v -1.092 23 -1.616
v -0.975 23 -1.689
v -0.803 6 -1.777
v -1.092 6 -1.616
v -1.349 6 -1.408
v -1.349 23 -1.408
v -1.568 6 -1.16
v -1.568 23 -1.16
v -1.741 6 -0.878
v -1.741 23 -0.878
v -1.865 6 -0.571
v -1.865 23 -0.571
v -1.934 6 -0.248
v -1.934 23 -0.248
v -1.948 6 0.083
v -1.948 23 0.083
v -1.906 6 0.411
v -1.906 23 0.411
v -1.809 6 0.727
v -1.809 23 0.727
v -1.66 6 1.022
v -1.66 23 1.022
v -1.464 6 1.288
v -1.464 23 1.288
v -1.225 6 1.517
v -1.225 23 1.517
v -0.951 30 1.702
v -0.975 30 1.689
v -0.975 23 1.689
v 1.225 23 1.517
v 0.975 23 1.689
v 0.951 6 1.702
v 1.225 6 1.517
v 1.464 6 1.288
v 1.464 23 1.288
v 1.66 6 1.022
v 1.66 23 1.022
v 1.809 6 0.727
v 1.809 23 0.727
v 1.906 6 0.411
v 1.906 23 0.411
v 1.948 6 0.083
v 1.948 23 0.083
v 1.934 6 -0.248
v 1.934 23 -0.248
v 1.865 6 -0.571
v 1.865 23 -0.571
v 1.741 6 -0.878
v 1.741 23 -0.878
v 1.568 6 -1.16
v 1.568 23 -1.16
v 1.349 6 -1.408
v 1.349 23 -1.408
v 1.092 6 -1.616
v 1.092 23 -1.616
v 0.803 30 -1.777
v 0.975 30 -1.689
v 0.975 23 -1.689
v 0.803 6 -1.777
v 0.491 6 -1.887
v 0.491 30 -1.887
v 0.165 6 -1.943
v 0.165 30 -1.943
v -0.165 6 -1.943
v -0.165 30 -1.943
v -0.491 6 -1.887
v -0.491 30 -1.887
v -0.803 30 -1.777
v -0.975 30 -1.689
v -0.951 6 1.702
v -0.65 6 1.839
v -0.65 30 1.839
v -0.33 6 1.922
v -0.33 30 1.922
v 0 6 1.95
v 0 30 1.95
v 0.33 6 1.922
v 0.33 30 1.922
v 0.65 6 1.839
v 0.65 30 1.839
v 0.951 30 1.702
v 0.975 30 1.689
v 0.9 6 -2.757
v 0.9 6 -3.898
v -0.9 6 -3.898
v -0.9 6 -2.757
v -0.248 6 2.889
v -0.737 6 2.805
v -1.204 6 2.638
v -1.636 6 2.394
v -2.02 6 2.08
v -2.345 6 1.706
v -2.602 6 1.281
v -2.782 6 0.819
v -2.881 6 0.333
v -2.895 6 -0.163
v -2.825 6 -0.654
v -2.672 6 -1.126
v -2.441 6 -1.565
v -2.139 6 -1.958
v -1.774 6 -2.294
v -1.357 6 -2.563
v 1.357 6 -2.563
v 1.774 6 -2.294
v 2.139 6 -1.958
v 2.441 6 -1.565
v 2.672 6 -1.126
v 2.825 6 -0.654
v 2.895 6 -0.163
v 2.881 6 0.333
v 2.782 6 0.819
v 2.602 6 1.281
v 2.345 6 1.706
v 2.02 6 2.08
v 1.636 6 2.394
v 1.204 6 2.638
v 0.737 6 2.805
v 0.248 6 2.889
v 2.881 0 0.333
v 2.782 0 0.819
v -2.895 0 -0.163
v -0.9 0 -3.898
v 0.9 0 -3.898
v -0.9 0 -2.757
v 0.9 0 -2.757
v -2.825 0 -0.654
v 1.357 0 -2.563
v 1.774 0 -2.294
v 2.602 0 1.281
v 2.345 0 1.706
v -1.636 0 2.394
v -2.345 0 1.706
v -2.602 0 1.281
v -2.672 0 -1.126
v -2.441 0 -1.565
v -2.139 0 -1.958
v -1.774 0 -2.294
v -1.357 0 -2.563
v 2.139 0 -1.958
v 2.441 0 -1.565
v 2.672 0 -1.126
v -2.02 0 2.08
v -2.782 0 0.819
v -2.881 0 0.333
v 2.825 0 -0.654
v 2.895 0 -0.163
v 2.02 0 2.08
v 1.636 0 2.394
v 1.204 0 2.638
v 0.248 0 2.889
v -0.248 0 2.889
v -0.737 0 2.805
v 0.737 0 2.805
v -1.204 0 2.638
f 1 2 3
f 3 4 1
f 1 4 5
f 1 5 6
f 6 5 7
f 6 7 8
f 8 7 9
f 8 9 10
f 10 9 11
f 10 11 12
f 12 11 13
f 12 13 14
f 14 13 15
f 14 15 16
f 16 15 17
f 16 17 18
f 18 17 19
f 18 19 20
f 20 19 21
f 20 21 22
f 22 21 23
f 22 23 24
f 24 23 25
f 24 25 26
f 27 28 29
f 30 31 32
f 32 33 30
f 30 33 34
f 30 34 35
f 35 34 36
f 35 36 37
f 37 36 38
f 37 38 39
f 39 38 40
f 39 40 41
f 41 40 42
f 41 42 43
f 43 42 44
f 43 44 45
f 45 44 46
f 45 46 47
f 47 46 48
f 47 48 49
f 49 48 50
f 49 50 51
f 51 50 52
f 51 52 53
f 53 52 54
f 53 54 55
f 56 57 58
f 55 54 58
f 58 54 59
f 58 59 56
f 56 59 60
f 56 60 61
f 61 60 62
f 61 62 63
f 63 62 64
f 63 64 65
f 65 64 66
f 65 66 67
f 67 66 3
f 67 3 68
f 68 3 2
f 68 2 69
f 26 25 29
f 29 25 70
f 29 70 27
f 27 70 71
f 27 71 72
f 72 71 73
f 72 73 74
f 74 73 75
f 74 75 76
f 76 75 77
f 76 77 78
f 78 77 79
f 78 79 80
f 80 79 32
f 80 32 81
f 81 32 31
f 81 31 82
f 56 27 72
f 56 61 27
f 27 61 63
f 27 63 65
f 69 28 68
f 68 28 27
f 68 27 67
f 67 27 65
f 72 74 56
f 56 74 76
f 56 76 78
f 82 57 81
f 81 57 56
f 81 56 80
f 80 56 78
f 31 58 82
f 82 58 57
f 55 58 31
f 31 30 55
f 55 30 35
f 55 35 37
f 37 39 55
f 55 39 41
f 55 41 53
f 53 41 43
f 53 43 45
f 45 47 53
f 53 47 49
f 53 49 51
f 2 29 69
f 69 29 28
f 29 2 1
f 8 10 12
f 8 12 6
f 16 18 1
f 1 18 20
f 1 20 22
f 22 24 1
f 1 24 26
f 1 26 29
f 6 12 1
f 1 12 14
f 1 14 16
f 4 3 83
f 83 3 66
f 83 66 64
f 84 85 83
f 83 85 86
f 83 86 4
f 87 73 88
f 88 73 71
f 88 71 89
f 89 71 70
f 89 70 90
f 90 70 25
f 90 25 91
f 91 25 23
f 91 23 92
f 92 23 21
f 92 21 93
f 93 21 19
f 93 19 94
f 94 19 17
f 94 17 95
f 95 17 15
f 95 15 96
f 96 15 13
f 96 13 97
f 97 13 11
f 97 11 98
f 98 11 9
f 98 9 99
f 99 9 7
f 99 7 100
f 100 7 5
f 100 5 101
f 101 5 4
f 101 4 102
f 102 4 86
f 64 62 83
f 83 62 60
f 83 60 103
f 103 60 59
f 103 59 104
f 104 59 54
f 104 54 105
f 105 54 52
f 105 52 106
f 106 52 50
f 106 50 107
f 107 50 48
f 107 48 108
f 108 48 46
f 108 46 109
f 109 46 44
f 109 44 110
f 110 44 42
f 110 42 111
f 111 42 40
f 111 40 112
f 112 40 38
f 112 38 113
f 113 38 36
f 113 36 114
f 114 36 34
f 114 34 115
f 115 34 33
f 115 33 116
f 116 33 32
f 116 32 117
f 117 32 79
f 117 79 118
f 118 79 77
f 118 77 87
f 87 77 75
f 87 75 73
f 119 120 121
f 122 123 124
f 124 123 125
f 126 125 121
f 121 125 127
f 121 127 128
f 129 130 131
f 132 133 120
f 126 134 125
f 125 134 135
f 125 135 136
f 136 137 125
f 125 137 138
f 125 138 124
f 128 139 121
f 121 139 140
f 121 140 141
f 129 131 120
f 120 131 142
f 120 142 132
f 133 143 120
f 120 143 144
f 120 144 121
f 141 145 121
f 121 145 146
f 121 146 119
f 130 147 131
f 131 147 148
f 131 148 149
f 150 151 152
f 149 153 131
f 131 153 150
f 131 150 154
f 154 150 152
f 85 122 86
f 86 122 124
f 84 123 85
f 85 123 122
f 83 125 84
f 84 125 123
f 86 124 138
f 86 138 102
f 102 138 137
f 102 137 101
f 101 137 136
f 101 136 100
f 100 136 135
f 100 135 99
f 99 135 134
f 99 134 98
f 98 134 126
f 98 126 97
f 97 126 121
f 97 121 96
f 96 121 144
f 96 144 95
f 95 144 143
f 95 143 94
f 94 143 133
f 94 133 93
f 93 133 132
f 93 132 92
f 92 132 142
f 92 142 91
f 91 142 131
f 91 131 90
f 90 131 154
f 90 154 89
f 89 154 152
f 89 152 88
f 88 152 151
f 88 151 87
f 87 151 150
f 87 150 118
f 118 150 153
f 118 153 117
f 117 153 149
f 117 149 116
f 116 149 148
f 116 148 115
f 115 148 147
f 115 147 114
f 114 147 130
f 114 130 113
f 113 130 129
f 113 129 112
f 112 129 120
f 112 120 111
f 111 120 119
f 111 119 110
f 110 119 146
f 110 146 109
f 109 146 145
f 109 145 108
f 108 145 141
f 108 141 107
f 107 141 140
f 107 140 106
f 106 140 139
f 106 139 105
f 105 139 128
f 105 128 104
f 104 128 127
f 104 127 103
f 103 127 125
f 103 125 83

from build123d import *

# Parameters (mm, degrees)
SKETCH1_R           = 3
SKETCH1_W           = 2
SKETCH1_H           = 1.17
BOSS_EXTRUDE1_DEPTH = 30
SKETCH2_R           = 6.166150273
SKETCH2_R_2         = 1.95
CUT_EXTRUDE1_DEPTH  = 22
CUT_EXTRUDE2_DEPTH  = 7
CUT_EXTRUDE3_DEPTH  = 100
SKETCH5_R           = 1.95
CUT_EXTRUDE4_DEPTH  = 2


with BuildPart() as part:
    # Sketch1 → Boss-Extrude1 (new body)
    with BuildSketch(Plane(origin=(0, 0, 0), x_dir=(1, 0, 0), z_dir=(0, 1, 0))):
        Circle(SKETCH1_R)
        with Locations((0, 3.413427125)):
            Rectangle(SKETCH1_W, SKETCH1_H)
    extrude(amount=BOSS_EXTRUDE1_DEPTH)

    # Sketch2 → Cut-Extrude1 (cut)
    with BuildSketch(Plane(origin=(0, 30, 0), x_dir=(1, 0, 0), z_dir=(0, 1, 0))):
        Circle(SKETCH2_R)
        Circle(SKETCH2_R_2, mode=Mode.SUBTRACT)
    extrude(amount=-CUT_EXTRUDE1_DEPTH, mode=Mode.SUBTRACT)

    # Sketch3 → Cut-Extrude2 (cut)
    with BuildSketch(Plane(origin=(0, 30, 0), x_dir=(1, 0, 0), z_dir=(0, 1, 0))):
        with BuildLine():
            Line((-0.975, 1.688749537), (-0.975, -1.688749537))
            ThreePointArc((-0.975, -1.688749537), (-1.95, 0), (-0.975, 1.688749537))
        make_face()
        with BuildLine():
            Line((0.975, 1.688749537), (0.975, -1.688749537))
            ThreePointArc((0.975, -1.688749537), (1.95, 0), (0.975, 1.688749537))
        make_face()
    extrude(amount=-CUT_EXTRUDE2_DEPTH, mode=Mode.SUBTRACT)

    # Sketch4 → Cut-Extrude3 (cut)
    with BuildSketch(Plane.XZ):
        with BuildLine():
            Line((-1, -3.998427125), (1, -3.998427125))
            Line((1, -3.998427125), (1, -2.828427125))
            ThreePointArc((1, -2.828427125), (0, 3), (-1, -2.828427125))
            Line((-1, -2.828427125), (-1, -3.998427125))
        make_face()
        with BuildLine():
            Line((-0.9, -2.75680975), (-0.9, -3.898427125))
            Line((-0.9, -3.898427125), (0.9, -3.898427125))
            Line((0.9, -3.898427125), (0.9, -2.75680975))
            ThreePointArc((0.9, -2.75680975), (0, 2.9), (-0.9, -2.75680975))
        make_face(mode=Mode.SUBTRACT)
    extrude(amount=-CUT_EXTRUDE3_DEPTH, mode=Mode.SUBTRACT)

    # Sketch5 → Cut-Extrude4 (cut)
    with BuildSketch(Plane(origin=(0, 8, 0), x_dir=(1, 0, 0), z_dir=(0, 1, 0))):
        with BuildLine():
            Line((-2.76006086, 0.889979801), (-1.708873277, 4.14998829))
            Line((-1.708873277, 4.14998829), (2.174929625, 4.14998829))
            Line((2.174929625, 4.14998829), (2.48458984, 1.495597984))
            ThreePointArc((2.48458984, 1.495597984), (0.332662617, -2.880856745), (-2.76006086, 0.889979801))
        make_face()
        Circle(SKETCH5_R, mode=Mode.SUBTRACT)
    extrude(amount=-CUT_EXTRUDE4_DEPTH, mode=Mode.SUBTRACT)


solid = part.part
